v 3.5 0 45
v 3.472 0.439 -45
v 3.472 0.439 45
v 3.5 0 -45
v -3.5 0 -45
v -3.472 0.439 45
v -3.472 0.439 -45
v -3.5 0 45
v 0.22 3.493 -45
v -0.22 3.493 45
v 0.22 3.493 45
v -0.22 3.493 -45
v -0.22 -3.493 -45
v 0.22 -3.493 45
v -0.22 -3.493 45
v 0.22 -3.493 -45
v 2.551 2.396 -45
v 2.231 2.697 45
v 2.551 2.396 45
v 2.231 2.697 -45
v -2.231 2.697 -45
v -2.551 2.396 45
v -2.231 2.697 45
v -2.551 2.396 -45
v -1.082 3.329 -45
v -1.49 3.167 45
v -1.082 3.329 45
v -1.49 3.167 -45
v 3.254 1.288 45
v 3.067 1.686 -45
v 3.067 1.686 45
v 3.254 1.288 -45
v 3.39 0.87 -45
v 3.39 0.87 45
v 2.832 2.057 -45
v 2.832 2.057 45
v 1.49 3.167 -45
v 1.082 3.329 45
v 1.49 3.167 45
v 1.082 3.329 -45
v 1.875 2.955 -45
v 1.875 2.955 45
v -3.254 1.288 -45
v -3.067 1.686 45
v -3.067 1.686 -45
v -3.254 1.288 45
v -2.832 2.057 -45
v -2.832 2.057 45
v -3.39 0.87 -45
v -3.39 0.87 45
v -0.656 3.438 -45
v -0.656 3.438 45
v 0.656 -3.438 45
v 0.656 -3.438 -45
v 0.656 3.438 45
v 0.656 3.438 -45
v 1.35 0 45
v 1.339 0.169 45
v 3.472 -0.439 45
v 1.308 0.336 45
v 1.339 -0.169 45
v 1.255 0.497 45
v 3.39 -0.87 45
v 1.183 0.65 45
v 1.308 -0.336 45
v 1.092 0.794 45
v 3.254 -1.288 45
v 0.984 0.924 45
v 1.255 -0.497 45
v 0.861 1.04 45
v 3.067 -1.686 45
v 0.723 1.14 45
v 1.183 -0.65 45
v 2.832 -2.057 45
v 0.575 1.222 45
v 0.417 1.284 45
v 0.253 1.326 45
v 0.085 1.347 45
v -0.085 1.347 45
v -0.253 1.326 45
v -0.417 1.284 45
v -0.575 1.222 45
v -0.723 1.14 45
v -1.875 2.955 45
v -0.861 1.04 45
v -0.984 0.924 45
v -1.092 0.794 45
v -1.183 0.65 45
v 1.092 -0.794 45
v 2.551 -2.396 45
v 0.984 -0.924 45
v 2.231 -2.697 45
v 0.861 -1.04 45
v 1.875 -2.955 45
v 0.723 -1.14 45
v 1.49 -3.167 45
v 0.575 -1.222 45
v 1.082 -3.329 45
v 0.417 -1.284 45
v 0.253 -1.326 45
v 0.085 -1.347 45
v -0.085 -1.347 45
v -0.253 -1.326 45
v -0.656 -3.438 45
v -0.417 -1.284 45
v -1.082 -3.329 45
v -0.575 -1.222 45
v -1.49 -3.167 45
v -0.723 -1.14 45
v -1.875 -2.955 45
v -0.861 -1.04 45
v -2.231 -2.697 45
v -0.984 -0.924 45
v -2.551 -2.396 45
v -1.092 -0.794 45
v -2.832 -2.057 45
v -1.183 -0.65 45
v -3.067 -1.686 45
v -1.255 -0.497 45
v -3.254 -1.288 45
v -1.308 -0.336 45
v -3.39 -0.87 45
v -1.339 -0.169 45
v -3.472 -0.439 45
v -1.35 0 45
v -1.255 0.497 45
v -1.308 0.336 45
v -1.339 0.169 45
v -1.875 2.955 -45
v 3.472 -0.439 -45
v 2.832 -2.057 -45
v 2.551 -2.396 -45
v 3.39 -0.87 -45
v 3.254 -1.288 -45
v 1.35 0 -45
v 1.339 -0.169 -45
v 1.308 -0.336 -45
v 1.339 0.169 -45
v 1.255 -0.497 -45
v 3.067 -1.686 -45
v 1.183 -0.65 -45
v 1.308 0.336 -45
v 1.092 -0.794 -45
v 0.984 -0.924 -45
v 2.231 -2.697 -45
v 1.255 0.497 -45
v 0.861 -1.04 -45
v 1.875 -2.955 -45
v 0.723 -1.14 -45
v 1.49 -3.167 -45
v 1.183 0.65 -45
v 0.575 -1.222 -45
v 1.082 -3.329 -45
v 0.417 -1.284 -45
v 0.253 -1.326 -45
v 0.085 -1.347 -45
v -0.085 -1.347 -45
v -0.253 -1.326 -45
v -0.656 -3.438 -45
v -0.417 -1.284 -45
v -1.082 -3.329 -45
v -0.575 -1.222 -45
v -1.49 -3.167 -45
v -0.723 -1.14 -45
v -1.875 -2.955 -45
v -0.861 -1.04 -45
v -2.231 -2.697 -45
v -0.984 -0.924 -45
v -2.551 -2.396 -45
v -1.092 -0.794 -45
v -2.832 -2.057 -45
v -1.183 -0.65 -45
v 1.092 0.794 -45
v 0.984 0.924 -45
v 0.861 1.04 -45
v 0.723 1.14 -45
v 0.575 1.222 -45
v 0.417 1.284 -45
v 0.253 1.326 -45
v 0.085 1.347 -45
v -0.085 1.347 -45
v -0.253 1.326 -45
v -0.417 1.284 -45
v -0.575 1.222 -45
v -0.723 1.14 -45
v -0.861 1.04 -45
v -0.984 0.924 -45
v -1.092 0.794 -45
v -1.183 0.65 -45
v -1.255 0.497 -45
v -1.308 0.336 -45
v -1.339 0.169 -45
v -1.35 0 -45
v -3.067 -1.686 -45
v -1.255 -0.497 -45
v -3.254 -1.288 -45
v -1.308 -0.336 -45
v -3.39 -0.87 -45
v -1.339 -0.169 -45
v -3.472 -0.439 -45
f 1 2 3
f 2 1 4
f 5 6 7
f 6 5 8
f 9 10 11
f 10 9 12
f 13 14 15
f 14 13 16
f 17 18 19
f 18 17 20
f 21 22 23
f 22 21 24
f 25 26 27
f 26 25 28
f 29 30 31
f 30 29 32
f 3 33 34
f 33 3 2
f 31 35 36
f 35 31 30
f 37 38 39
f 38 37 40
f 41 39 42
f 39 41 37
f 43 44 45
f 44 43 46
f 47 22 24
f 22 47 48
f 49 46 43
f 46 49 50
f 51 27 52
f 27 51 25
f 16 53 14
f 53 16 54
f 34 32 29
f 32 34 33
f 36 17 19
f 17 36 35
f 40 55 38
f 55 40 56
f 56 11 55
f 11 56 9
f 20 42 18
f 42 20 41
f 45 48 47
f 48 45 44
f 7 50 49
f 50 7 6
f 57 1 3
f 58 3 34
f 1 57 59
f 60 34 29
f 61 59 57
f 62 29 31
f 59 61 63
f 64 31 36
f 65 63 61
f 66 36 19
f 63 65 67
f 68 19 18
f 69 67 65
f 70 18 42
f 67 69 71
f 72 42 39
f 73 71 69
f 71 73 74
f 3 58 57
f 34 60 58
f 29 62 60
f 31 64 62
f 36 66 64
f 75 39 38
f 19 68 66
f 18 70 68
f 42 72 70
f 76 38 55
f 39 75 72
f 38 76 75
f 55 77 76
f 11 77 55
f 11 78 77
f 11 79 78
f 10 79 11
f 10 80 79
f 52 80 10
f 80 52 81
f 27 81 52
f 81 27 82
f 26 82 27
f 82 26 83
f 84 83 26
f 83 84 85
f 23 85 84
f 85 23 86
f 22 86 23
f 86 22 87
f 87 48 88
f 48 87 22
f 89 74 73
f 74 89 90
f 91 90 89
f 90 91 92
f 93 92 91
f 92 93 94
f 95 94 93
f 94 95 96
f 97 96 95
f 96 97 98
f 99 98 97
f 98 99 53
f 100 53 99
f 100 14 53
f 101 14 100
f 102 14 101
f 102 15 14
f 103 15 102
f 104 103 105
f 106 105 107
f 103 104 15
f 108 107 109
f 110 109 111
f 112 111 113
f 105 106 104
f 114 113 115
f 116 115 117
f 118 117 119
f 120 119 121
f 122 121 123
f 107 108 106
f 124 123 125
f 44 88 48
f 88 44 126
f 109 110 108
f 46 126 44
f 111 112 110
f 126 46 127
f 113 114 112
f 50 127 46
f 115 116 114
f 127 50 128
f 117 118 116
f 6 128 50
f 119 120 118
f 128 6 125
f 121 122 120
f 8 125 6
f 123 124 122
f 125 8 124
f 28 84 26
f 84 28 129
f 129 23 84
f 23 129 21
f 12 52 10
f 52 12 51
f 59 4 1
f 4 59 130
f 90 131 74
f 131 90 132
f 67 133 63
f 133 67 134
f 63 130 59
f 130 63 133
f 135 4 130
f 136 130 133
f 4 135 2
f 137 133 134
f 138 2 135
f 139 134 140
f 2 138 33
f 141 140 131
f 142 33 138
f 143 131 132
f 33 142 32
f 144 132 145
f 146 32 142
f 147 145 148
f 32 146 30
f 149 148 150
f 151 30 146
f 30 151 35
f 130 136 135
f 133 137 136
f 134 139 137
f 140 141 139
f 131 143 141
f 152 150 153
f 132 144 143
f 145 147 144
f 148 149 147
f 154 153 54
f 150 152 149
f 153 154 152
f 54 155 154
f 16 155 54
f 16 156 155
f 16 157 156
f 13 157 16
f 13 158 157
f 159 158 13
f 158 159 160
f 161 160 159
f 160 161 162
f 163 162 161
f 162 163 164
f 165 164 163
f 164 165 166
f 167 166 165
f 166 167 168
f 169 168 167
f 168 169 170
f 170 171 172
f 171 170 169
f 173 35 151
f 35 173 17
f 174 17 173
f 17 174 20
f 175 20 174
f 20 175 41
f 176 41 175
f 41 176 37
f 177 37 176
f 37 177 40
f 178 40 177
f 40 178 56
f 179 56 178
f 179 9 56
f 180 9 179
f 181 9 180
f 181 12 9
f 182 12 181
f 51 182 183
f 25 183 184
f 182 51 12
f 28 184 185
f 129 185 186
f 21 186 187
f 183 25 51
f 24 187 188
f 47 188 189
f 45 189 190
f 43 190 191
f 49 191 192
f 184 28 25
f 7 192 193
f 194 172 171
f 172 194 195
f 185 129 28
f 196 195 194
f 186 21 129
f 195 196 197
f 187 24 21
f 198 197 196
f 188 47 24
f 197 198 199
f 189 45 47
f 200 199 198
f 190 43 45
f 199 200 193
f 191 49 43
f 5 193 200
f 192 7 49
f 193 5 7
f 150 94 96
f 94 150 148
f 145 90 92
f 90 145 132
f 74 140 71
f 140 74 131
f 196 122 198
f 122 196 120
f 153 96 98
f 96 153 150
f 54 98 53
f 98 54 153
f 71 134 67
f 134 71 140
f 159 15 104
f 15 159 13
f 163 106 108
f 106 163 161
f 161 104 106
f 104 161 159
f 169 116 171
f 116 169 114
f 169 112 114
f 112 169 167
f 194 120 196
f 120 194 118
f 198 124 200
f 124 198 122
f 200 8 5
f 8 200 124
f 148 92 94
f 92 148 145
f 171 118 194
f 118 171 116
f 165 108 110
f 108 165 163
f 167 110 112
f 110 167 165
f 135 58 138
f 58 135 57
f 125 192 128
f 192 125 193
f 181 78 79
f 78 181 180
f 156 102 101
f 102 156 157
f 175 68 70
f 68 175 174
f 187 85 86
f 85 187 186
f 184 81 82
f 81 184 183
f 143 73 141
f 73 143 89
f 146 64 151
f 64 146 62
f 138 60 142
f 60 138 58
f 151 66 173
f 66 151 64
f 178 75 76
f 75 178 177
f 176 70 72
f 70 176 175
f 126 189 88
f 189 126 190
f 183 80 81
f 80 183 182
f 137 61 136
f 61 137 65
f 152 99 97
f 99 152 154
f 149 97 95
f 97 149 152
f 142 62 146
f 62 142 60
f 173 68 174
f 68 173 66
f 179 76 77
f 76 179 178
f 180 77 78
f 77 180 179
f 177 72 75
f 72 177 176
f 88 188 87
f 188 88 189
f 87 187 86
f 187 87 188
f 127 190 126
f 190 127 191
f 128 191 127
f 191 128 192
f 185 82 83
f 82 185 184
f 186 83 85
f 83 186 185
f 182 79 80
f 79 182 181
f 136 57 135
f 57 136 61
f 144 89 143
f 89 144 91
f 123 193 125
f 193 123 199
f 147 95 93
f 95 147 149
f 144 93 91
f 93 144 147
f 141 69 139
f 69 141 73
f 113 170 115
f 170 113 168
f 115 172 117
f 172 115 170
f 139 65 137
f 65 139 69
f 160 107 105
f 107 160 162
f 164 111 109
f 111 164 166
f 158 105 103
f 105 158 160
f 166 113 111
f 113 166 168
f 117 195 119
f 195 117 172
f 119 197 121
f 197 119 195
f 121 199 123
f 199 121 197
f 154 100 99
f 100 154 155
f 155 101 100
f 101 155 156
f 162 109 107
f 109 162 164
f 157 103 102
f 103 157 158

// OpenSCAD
$fn = 50;


difference() {
	union() {
		translate(v = [0, 0, -45.0000000000]) {
			cylinder(h = 90, r = 3.5000000000);
		}
	}
	union() {
		translate(v = [0, 0, -100.0000000000]) {
			cylinder(h = 200, r = 1.3500000000);
		}
	}
}
